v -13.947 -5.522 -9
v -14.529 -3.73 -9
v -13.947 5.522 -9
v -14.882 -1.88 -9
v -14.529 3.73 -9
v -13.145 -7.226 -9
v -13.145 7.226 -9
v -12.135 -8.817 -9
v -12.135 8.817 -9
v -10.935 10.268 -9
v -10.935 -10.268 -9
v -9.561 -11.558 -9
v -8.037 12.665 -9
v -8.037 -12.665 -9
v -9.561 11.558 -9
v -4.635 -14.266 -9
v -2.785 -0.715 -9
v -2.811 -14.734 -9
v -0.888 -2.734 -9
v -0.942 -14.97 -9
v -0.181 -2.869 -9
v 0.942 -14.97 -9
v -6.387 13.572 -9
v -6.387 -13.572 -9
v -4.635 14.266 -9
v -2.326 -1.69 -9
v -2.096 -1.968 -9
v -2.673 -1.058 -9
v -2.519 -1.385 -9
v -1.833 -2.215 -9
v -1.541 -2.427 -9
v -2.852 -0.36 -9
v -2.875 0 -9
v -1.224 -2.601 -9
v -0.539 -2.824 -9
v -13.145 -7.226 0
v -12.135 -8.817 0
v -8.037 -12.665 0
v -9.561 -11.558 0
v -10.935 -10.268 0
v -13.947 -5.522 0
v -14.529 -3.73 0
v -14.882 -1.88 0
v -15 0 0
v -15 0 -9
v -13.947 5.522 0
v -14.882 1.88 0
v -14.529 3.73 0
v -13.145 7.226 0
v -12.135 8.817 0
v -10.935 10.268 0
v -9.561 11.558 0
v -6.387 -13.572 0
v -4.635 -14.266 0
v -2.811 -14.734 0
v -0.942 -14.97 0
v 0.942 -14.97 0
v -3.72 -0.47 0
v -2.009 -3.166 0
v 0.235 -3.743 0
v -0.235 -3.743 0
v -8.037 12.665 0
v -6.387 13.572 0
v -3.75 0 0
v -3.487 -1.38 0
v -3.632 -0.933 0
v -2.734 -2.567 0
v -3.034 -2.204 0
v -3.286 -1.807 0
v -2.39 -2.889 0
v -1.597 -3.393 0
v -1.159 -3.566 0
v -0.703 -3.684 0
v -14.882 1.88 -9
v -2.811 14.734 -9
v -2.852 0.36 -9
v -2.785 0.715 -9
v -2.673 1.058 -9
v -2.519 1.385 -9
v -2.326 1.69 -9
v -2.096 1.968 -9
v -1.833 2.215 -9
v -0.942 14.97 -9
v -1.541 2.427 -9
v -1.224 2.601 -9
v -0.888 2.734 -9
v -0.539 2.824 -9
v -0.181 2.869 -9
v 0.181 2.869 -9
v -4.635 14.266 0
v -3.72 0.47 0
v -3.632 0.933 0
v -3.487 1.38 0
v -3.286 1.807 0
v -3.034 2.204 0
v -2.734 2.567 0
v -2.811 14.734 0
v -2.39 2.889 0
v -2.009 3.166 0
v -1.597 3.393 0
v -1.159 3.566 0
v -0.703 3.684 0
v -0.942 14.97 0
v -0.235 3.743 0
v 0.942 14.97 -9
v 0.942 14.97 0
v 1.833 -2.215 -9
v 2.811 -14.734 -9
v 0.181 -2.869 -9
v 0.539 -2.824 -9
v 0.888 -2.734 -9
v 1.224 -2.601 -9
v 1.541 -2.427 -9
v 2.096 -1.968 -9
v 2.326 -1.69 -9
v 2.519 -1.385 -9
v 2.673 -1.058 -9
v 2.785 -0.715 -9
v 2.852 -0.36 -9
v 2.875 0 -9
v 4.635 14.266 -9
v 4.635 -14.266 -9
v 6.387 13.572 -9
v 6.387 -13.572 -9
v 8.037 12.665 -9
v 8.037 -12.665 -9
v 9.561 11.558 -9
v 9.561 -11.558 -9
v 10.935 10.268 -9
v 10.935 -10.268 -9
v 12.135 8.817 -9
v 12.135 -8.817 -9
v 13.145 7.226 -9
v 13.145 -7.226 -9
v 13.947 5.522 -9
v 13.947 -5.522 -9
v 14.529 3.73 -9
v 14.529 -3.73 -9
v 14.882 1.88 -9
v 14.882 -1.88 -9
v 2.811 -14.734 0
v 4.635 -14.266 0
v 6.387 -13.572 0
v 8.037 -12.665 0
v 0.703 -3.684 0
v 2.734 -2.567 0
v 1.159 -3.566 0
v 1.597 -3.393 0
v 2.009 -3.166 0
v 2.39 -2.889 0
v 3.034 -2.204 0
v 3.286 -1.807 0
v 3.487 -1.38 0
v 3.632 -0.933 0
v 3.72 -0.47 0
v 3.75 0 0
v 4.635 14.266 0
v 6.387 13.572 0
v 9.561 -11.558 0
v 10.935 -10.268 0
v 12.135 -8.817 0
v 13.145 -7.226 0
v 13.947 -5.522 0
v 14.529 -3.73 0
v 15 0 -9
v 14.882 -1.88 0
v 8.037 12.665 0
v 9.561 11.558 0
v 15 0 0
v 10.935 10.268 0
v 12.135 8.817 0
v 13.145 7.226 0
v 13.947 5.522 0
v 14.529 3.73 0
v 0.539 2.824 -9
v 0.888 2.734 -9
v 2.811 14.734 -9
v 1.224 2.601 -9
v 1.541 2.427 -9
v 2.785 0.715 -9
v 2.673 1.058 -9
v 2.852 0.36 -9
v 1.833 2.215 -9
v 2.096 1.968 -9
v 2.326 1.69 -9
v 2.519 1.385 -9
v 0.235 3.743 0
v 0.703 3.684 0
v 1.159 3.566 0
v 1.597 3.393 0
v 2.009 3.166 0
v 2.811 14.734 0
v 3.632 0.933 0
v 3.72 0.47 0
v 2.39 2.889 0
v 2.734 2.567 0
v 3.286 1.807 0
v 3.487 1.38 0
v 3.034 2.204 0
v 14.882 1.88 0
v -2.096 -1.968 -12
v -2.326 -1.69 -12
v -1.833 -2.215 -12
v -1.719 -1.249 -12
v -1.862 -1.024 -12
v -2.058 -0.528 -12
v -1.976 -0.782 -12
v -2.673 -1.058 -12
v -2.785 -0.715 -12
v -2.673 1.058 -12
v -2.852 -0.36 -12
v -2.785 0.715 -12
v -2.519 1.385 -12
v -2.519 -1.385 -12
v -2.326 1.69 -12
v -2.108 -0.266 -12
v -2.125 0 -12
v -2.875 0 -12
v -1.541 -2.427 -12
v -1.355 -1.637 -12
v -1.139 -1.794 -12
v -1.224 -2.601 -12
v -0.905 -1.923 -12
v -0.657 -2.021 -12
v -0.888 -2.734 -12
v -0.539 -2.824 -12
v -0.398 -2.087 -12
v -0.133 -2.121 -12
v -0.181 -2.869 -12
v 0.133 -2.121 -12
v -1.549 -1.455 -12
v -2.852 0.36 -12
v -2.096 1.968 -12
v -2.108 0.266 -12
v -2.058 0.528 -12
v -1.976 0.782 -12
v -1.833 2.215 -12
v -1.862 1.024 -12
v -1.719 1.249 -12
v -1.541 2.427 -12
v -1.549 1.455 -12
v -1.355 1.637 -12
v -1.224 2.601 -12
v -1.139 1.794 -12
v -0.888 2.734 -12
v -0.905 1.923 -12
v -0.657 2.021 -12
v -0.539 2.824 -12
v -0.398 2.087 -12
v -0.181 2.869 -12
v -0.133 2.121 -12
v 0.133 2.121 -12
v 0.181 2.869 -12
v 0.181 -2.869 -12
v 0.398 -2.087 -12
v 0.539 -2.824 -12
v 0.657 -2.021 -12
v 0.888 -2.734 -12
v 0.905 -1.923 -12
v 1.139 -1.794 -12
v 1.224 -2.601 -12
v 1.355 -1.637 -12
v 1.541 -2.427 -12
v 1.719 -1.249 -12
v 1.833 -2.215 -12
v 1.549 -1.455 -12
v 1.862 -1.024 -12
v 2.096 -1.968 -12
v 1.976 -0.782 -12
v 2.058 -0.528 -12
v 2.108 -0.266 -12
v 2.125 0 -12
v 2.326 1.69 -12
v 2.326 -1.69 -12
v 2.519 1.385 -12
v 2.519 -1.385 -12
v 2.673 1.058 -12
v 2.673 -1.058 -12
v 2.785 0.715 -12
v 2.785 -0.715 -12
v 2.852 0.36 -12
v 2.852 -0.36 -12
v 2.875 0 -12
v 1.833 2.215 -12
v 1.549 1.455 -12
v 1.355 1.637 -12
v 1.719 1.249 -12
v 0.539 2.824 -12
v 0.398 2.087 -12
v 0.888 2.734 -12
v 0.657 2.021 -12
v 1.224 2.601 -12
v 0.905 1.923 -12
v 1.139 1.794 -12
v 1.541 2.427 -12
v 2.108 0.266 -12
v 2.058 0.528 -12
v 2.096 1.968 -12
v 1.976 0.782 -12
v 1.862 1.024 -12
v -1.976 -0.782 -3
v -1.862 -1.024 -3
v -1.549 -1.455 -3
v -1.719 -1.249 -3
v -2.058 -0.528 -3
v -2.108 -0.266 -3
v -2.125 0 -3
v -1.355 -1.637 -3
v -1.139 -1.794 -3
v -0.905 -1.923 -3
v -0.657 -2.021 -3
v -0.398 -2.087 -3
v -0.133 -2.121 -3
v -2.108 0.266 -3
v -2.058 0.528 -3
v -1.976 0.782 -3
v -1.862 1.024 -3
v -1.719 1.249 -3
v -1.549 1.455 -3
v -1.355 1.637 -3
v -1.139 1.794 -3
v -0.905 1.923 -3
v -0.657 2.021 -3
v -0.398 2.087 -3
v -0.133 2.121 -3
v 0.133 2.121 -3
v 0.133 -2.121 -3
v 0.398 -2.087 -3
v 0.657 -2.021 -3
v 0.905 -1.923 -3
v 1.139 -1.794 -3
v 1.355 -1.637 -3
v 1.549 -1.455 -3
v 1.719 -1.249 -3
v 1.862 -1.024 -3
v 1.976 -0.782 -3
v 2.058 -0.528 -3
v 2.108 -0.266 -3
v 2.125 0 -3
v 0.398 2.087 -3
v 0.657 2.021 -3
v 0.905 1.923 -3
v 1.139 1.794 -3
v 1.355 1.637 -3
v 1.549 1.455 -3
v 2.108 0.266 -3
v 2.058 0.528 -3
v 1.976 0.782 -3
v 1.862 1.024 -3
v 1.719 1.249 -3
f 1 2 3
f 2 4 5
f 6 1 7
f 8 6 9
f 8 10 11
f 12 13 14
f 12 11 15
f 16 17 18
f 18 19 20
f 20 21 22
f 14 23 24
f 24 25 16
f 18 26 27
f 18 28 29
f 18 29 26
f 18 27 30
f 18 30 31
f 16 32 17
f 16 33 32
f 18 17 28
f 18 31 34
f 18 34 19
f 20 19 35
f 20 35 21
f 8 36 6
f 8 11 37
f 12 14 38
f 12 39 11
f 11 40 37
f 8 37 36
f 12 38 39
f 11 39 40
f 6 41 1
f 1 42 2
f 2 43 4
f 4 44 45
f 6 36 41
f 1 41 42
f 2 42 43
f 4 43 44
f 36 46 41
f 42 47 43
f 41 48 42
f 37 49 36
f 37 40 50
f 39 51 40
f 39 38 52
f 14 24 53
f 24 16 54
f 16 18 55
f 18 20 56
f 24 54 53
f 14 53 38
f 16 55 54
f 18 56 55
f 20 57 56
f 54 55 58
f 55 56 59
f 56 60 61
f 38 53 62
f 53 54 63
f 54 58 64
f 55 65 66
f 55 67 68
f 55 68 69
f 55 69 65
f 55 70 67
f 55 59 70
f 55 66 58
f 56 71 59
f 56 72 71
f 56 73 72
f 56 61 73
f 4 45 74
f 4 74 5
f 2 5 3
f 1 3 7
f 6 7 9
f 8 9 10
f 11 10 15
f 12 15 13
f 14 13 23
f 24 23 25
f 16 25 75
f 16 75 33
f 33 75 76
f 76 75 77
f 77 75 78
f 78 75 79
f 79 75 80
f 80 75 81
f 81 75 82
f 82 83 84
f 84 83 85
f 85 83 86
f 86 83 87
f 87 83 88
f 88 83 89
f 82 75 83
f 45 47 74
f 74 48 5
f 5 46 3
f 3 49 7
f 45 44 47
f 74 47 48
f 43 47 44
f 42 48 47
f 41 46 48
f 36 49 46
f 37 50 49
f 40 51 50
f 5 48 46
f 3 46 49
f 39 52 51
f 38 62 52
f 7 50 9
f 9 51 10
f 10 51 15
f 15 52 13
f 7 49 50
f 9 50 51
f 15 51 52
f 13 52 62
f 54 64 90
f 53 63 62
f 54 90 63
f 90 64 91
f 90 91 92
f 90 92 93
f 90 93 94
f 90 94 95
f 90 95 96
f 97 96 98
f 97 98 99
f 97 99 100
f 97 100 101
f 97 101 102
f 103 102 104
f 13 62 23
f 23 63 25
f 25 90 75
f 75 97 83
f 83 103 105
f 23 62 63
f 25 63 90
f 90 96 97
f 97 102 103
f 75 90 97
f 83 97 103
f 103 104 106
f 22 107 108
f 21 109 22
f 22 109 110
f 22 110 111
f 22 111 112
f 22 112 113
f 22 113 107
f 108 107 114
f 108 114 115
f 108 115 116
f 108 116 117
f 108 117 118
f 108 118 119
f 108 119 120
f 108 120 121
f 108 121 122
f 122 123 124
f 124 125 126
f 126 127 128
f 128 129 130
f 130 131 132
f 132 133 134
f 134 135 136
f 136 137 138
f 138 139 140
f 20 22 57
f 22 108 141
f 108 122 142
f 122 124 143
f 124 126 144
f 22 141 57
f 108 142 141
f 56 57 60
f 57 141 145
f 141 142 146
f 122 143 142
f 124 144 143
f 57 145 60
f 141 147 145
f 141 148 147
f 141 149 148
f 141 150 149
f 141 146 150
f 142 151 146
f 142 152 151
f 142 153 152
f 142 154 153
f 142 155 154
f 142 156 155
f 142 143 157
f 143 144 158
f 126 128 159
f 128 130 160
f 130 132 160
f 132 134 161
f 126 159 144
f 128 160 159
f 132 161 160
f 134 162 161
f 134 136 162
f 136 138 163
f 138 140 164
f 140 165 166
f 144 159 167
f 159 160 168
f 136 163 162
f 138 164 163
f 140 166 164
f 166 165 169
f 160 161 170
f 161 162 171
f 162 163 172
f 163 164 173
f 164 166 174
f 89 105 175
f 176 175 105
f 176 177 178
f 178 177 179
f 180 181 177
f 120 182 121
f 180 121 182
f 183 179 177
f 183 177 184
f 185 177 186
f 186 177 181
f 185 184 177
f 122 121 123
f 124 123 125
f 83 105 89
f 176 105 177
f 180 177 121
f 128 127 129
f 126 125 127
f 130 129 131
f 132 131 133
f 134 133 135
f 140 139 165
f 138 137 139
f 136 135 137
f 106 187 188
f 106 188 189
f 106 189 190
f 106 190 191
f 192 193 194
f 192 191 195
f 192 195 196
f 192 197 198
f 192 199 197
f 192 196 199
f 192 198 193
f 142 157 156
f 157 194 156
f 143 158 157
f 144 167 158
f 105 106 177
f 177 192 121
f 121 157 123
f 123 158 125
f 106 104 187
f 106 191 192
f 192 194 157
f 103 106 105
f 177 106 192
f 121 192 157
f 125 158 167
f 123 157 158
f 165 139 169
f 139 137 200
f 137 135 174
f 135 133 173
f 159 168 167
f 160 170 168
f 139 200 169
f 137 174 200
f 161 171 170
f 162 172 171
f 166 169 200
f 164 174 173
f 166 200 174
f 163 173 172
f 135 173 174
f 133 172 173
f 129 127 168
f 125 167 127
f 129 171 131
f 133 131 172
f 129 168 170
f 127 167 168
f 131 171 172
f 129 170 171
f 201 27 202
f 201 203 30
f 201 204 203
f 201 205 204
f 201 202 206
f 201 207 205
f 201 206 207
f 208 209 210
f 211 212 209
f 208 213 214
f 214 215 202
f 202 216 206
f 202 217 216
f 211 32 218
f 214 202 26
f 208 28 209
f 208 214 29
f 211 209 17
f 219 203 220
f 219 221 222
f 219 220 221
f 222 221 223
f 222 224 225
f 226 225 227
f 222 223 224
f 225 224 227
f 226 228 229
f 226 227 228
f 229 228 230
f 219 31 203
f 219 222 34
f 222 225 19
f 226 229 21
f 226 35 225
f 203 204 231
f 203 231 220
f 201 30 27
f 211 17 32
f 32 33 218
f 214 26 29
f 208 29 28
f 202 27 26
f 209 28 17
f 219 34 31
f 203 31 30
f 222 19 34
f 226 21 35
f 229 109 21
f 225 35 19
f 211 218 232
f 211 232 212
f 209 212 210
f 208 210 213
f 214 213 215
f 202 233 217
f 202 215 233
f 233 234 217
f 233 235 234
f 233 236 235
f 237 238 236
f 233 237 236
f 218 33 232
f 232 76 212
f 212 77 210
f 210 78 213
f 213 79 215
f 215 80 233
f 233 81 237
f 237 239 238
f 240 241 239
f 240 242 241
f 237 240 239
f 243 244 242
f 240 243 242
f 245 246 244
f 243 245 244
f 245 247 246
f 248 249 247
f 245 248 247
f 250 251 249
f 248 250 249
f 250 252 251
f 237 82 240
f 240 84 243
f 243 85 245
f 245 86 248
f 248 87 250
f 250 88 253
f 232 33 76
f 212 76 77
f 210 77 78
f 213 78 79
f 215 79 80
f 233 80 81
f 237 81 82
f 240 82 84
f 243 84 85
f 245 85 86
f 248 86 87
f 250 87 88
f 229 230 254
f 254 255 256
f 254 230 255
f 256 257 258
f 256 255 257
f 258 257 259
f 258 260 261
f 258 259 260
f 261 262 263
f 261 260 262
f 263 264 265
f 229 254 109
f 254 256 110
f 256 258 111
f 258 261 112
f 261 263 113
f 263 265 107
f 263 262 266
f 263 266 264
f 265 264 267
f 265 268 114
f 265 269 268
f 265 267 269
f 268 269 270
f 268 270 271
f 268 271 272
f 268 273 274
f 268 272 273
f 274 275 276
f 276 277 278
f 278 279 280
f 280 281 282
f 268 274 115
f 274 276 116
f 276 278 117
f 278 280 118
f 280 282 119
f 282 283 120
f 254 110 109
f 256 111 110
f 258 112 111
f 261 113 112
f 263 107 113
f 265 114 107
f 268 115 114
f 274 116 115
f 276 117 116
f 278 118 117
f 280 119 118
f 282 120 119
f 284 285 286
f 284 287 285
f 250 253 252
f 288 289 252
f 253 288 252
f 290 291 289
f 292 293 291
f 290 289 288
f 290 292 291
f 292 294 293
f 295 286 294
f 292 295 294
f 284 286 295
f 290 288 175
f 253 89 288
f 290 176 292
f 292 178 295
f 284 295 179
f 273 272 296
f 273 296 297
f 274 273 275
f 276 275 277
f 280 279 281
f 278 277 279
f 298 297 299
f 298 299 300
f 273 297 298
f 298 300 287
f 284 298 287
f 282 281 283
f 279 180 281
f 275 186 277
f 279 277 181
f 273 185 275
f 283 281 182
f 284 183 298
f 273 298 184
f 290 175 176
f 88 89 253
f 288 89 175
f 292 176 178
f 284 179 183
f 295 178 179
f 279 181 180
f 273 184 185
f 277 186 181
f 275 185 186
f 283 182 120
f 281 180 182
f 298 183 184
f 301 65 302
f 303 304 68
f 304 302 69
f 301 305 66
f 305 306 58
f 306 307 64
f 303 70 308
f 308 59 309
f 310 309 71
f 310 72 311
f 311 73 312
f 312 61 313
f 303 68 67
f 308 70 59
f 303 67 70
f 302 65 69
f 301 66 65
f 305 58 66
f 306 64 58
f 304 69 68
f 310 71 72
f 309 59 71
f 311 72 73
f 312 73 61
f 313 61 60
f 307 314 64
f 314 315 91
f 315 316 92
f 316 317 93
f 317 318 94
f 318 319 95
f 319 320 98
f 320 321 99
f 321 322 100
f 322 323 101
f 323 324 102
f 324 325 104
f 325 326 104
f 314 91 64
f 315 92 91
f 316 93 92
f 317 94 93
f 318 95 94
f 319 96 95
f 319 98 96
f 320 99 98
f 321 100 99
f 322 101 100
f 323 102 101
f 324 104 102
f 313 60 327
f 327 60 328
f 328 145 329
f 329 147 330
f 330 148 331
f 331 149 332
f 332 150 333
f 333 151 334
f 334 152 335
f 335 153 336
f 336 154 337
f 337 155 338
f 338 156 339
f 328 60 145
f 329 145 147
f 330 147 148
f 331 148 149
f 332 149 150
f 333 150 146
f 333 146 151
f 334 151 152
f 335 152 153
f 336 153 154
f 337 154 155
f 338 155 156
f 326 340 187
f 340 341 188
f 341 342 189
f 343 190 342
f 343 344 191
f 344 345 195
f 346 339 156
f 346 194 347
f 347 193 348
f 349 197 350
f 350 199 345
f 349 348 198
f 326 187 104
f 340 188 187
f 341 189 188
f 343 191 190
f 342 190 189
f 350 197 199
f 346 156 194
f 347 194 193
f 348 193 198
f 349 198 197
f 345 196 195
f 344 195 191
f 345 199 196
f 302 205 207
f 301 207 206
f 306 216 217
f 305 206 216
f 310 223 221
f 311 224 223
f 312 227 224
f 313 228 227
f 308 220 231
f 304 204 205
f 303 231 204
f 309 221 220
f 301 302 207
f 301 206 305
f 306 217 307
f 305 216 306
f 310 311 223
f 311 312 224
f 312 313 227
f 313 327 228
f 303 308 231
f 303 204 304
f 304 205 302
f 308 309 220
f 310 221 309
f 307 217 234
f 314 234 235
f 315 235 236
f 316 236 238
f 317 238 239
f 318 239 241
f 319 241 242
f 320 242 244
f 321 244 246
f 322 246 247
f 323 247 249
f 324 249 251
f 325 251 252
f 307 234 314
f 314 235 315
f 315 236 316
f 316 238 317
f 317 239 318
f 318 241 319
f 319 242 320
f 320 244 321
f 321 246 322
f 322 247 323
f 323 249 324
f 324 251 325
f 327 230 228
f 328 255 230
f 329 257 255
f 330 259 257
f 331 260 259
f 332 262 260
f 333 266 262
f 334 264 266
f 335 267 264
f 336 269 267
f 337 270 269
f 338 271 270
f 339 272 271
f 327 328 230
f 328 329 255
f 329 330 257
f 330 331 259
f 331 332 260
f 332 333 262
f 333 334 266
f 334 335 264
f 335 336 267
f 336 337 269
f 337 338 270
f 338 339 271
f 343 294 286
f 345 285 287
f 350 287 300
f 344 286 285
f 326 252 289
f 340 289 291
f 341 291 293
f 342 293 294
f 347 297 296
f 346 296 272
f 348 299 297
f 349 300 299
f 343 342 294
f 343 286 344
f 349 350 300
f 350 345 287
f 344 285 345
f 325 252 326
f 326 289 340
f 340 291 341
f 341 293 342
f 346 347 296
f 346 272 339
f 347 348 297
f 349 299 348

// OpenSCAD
$fn = 50;


difference() {
	union() {
		translate(v = [0, 0, -9.0000000000]) {
			cylinder(h = 9, r = 15.0000000000);
		}
		#translate(v = [0, 0, -12.0000000000]) {
			cylinder(h = 12, r = 2.8750000000);
		}
	}
	union() {
		translate(v = [0, 0, 0]) {
			rotate(a = [0, 0, 0]) {
				difference() {
					union() {
						translate(v = [0, 0, -12.0000000000]) {
							cylinder(h = 12, r = 2.0000000000);
						}
						translate(v = [0, 0, -3]) {
							cylinder(h = 3, r1 = 2.1250000000, r2 = 3.7500000000);
						}
						translate(v = [0, 0, -12.0000000000]) {
							cylinder(h = 12, r = 2.1250000000);
						}
						translate(v = [0, 0, -12.0000000000]) {
							cylinder(h = 12, r = 2.0000000000);
						}
					}
					union();
				}
			}
		}
	}
}
